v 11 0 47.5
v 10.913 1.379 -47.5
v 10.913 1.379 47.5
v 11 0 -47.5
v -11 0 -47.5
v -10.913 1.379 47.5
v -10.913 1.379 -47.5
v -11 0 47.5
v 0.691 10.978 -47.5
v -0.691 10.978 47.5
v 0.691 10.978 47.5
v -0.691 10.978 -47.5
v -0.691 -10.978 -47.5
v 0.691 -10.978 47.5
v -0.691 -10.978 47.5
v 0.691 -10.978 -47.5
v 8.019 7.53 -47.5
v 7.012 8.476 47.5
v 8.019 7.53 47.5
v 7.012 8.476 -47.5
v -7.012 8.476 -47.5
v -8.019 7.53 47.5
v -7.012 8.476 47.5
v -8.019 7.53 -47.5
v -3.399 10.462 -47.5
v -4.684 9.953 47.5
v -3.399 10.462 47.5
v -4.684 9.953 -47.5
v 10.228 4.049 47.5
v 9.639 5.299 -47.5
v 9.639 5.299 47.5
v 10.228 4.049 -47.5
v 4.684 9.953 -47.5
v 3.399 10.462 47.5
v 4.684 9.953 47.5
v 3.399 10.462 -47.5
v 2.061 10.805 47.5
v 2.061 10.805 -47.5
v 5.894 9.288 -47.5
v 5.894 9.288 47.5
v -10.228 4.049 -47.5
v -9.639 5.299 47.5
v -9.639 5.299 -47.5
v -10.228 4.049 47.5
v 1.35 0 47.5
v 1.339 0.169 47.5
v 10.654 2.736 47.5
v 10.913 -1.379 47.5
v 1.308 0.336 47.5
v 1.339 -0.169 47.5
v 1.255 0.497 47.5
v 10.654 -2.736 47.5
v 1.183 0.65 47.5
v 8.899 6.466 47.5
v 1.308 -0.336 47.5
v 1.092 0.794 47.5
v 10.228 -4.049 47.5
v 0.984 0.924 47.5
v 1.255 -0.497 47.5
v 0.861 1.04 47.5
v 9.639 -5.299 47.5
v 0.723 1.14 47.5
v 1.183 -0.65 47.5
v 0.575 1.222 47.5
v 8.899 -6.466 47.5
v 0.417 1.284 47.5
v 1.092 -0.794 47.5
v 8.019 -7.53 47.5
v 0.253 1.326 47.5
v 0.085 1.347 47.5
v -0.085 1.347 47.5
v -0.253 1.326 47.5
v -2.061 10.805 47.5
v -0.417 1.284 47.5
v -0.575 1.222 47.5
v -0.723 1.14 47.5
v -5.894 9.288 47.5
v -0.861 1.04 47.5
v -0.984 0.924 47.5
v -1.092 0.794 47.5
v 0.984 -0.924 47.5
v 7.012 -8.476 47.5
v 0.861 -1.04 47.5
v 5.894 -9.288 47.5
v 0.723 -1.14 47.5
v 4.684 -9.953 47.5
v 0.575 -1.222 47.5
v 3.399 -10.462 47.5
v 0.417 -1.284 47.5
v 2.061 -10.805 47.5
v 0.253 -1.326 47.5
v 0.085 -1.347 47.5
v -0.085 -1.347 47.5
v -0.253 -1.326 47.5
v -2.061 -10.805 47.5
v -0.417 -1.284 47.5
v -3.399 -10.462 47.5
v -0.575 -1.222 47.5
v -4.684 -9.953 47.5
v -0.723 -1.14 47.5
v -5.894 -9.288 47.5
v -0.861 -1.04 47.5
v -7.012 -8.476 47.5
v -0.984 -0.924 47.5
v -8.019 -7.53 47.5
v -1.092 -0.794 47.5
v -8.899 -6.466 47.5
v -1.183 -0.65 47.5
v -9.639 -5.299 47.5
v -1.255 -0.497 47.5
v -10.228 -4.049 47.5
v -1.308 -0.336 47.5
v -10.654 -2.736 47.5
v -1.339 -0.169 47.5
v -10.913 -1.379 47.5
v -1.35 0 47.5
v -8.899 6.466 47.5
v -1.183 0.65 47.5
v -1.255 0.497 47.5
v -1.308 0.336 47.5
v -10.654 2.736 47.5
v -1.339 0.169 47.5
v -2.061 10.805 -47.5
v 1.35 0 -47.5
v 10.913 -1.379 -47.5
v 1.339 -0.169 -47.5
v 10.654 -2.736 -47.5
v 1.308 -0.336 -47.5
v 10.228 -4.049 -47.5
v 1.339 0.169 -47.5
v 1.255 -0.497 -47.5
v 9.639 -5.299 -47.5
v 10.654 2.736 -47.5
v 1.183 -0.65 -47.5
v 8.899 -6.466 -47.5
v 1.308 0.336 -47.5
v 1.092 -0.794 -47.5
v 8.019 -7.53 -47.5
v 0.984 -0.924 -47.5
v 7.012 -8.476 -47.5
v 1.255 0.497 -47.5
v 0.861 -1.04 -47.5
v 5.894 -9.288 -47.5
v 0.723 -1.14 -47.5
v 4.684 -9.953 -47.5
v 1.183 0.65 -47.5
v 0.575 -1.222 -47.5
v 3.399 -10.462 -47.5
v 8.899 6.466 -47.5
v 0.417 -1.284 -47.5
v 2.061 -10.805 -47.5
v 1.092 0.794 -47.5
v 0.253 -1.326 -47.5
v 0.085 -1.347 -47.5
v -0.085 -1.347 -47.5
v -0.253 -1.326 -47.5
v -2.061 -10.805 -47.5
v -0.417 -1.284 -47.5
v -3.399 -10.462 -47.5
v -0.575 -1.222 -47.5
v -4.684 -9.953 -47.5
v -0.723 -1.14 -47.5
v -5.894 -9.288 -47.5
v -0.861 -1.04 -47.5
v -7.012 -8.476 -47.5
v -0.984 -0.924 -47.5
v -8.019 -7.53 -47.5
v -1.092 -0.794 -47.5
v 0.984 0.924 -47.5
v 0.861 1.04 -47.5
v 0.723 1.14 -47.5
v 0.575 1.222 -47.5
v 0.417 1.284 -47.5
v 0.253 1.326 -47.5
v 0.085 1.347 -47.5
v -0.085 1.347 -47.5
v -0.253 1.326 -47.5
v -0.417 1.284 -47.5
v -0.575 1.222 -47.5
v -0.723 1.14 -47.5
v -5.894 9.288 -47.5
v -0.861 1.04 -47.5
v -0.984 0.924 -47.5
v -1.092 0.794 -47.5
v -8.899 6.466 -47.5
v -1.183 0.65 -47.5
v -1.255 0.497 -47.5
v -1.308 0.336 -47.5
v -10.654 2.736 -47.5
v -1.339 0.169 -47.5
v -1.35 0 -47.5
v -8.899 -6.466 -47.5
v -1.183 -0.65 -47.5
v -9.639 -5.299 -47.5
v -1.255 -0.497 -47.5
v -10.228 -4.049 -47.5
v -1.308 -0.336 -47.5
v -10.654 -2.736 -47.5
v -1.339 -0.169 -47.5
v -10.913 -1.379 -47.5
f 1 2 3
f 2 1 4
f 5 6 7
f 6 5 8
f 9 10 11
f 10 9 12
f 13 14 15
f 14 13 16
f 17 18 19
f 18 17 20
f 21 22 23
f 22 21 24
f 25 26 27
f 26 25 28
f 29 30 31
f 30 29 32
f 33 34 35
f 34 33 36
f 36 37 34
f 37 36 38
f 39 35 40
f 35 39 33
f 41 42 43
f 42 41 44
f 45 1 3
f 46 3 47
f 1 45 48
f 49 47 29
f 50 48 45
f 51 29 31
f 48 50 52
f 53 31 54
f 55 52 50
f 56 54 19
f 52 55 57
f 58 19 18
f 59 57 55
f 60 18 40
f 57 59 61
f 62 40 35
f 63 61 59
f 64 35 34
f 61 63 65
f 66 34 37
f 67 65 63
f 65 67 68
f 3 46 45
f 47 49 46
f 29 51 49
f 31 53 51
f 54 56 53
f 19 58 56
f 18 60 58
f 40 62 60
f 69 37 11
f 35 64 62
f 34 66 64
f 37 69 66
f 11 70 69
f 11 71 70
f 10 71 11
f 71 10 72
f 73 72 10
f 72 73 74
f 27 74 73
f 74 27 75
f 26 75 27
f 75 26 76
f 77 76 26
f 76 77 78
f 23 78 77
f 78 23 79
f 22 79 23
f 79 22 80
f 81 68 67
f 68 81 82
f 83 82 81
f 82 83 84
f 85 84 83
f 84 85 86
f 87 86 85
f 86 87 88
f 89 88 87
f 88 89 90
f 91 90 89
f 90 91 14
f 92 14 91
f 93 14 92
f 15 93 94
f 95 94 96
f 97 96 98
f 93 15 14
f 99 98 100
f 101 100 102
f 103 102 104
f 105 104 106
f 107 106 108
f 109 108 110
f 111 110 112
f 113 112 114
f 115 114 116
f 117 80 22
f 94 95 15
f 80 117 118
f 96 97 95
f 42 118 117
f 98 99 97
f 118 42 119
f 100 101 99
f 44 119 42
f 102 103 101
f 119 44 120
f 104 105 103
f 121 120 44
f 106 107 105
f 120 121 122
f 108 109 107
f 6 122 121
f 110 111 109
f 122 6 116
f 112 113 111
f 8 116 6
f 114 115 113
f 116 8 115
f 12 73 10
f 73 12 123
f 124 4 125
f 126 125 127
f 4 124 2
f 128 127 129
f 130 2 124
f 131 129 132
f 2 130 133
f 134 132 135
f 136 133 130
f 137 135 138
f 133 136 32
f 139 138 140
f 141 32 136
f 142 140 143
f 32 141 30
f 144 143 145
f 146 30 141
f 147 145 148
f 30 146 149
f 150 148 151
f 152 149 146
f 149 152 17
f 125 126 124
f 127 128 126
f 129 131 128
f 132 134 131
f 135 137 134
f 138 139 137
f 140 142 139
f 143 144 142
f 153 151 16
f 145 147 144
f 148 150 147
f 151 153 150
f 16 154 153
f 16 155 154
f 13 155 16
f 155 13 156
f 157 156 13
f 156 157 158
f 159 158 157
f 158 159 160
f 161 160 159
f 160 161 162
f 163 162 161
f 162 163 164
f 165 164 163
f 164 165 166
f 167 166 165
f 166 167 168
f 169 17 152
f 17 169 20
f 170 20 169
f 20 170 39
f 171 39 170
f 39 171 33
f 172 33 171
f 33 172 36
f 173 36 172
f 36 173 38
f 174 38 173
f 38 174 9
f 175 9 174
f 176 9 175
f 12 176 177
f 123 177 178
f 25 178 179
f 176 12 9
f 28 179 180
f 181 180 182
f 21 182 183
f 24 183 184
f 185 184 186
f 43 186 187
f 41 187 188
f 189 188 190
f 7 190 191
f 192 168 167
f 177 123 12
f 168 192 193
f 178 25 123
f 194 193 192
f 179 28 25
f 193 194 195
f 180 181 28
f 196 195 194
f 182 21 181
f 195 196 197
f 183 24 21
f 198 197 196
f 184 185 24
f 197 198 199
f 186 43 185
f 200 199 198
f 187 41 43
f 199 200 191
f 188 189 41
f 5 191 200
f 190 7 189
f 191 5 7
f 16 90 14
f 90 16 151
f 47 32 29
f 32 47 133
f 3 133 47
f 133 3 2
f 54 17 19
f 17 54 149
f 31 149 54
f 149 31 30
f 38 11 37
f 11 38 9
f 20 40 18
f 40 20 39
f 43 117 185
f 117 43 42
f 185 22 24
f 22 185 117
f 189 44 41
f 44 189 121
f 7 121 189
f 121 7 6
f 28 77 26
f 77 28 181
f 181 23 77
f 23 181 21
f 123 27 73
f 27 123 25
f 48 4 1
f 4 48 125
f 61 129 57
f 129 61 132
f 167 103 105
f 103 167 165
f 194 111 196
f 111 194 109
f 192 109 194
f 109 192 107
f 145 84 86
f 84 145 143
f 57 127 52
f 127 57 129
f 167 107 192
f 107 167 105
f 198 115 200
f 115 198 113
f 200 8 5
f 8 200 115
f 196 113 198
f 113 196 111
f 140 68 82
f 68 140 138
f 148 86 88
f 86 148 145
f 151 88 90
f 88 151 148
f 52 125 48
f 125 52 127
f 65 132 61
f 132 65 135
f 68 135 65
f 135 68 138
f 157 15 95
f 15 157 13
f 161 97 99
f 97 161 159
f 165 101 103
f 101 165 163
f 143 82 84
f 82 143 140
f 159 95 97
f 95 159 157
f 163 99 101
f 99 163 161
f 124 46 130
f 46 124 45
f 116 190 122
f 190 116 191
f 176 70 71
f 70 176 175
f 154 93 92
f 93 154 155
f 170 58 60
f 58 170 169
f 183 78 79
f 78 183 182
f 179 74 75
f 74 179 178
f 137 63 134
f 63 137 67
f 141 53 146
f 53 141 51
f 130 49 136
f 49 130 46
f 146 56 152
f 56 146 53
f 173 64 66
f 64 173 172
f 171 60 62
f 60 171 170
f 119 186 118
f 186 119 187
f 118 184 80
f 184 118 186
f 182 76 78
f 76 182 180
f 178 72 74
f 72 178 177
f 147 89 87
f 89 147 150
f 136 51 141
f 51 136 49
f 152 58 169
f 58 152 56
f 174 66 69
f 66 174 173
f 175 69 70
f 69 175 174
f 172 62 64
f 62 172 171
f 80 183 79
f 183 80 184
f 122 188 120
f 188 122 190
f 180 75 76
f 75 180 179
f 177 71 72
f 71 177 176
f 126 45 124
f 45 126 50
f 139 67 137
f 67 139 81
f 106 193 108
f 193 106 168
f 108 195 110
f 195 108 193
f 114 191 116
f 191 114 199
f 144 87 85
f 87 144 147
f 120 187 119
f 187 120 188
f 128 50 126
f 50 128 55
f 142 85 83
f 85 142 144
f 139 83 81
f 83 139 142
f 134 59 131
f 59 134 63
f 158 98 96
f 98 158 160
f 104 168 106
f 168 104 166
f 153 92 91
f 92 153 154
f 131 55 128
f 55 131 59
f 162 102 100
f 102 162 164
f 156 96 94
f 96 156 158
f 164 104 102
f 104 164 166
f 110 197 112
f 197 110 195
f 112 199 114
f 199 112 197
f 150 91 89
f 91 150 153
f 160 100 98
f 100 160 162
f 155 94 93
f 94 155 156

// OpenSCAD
$fn = 50;


difference() {
	union() {
		translate(v = [0, 0, -47.5000000000]) {
			cylinder(h = 95, r = 11.0000000000);
		}
	}
	union() {
		translate(v = [0, 0, -100.0000000000]) {
			cylinder(h = 200, r = 1.3500000000);
		}
	}
}
